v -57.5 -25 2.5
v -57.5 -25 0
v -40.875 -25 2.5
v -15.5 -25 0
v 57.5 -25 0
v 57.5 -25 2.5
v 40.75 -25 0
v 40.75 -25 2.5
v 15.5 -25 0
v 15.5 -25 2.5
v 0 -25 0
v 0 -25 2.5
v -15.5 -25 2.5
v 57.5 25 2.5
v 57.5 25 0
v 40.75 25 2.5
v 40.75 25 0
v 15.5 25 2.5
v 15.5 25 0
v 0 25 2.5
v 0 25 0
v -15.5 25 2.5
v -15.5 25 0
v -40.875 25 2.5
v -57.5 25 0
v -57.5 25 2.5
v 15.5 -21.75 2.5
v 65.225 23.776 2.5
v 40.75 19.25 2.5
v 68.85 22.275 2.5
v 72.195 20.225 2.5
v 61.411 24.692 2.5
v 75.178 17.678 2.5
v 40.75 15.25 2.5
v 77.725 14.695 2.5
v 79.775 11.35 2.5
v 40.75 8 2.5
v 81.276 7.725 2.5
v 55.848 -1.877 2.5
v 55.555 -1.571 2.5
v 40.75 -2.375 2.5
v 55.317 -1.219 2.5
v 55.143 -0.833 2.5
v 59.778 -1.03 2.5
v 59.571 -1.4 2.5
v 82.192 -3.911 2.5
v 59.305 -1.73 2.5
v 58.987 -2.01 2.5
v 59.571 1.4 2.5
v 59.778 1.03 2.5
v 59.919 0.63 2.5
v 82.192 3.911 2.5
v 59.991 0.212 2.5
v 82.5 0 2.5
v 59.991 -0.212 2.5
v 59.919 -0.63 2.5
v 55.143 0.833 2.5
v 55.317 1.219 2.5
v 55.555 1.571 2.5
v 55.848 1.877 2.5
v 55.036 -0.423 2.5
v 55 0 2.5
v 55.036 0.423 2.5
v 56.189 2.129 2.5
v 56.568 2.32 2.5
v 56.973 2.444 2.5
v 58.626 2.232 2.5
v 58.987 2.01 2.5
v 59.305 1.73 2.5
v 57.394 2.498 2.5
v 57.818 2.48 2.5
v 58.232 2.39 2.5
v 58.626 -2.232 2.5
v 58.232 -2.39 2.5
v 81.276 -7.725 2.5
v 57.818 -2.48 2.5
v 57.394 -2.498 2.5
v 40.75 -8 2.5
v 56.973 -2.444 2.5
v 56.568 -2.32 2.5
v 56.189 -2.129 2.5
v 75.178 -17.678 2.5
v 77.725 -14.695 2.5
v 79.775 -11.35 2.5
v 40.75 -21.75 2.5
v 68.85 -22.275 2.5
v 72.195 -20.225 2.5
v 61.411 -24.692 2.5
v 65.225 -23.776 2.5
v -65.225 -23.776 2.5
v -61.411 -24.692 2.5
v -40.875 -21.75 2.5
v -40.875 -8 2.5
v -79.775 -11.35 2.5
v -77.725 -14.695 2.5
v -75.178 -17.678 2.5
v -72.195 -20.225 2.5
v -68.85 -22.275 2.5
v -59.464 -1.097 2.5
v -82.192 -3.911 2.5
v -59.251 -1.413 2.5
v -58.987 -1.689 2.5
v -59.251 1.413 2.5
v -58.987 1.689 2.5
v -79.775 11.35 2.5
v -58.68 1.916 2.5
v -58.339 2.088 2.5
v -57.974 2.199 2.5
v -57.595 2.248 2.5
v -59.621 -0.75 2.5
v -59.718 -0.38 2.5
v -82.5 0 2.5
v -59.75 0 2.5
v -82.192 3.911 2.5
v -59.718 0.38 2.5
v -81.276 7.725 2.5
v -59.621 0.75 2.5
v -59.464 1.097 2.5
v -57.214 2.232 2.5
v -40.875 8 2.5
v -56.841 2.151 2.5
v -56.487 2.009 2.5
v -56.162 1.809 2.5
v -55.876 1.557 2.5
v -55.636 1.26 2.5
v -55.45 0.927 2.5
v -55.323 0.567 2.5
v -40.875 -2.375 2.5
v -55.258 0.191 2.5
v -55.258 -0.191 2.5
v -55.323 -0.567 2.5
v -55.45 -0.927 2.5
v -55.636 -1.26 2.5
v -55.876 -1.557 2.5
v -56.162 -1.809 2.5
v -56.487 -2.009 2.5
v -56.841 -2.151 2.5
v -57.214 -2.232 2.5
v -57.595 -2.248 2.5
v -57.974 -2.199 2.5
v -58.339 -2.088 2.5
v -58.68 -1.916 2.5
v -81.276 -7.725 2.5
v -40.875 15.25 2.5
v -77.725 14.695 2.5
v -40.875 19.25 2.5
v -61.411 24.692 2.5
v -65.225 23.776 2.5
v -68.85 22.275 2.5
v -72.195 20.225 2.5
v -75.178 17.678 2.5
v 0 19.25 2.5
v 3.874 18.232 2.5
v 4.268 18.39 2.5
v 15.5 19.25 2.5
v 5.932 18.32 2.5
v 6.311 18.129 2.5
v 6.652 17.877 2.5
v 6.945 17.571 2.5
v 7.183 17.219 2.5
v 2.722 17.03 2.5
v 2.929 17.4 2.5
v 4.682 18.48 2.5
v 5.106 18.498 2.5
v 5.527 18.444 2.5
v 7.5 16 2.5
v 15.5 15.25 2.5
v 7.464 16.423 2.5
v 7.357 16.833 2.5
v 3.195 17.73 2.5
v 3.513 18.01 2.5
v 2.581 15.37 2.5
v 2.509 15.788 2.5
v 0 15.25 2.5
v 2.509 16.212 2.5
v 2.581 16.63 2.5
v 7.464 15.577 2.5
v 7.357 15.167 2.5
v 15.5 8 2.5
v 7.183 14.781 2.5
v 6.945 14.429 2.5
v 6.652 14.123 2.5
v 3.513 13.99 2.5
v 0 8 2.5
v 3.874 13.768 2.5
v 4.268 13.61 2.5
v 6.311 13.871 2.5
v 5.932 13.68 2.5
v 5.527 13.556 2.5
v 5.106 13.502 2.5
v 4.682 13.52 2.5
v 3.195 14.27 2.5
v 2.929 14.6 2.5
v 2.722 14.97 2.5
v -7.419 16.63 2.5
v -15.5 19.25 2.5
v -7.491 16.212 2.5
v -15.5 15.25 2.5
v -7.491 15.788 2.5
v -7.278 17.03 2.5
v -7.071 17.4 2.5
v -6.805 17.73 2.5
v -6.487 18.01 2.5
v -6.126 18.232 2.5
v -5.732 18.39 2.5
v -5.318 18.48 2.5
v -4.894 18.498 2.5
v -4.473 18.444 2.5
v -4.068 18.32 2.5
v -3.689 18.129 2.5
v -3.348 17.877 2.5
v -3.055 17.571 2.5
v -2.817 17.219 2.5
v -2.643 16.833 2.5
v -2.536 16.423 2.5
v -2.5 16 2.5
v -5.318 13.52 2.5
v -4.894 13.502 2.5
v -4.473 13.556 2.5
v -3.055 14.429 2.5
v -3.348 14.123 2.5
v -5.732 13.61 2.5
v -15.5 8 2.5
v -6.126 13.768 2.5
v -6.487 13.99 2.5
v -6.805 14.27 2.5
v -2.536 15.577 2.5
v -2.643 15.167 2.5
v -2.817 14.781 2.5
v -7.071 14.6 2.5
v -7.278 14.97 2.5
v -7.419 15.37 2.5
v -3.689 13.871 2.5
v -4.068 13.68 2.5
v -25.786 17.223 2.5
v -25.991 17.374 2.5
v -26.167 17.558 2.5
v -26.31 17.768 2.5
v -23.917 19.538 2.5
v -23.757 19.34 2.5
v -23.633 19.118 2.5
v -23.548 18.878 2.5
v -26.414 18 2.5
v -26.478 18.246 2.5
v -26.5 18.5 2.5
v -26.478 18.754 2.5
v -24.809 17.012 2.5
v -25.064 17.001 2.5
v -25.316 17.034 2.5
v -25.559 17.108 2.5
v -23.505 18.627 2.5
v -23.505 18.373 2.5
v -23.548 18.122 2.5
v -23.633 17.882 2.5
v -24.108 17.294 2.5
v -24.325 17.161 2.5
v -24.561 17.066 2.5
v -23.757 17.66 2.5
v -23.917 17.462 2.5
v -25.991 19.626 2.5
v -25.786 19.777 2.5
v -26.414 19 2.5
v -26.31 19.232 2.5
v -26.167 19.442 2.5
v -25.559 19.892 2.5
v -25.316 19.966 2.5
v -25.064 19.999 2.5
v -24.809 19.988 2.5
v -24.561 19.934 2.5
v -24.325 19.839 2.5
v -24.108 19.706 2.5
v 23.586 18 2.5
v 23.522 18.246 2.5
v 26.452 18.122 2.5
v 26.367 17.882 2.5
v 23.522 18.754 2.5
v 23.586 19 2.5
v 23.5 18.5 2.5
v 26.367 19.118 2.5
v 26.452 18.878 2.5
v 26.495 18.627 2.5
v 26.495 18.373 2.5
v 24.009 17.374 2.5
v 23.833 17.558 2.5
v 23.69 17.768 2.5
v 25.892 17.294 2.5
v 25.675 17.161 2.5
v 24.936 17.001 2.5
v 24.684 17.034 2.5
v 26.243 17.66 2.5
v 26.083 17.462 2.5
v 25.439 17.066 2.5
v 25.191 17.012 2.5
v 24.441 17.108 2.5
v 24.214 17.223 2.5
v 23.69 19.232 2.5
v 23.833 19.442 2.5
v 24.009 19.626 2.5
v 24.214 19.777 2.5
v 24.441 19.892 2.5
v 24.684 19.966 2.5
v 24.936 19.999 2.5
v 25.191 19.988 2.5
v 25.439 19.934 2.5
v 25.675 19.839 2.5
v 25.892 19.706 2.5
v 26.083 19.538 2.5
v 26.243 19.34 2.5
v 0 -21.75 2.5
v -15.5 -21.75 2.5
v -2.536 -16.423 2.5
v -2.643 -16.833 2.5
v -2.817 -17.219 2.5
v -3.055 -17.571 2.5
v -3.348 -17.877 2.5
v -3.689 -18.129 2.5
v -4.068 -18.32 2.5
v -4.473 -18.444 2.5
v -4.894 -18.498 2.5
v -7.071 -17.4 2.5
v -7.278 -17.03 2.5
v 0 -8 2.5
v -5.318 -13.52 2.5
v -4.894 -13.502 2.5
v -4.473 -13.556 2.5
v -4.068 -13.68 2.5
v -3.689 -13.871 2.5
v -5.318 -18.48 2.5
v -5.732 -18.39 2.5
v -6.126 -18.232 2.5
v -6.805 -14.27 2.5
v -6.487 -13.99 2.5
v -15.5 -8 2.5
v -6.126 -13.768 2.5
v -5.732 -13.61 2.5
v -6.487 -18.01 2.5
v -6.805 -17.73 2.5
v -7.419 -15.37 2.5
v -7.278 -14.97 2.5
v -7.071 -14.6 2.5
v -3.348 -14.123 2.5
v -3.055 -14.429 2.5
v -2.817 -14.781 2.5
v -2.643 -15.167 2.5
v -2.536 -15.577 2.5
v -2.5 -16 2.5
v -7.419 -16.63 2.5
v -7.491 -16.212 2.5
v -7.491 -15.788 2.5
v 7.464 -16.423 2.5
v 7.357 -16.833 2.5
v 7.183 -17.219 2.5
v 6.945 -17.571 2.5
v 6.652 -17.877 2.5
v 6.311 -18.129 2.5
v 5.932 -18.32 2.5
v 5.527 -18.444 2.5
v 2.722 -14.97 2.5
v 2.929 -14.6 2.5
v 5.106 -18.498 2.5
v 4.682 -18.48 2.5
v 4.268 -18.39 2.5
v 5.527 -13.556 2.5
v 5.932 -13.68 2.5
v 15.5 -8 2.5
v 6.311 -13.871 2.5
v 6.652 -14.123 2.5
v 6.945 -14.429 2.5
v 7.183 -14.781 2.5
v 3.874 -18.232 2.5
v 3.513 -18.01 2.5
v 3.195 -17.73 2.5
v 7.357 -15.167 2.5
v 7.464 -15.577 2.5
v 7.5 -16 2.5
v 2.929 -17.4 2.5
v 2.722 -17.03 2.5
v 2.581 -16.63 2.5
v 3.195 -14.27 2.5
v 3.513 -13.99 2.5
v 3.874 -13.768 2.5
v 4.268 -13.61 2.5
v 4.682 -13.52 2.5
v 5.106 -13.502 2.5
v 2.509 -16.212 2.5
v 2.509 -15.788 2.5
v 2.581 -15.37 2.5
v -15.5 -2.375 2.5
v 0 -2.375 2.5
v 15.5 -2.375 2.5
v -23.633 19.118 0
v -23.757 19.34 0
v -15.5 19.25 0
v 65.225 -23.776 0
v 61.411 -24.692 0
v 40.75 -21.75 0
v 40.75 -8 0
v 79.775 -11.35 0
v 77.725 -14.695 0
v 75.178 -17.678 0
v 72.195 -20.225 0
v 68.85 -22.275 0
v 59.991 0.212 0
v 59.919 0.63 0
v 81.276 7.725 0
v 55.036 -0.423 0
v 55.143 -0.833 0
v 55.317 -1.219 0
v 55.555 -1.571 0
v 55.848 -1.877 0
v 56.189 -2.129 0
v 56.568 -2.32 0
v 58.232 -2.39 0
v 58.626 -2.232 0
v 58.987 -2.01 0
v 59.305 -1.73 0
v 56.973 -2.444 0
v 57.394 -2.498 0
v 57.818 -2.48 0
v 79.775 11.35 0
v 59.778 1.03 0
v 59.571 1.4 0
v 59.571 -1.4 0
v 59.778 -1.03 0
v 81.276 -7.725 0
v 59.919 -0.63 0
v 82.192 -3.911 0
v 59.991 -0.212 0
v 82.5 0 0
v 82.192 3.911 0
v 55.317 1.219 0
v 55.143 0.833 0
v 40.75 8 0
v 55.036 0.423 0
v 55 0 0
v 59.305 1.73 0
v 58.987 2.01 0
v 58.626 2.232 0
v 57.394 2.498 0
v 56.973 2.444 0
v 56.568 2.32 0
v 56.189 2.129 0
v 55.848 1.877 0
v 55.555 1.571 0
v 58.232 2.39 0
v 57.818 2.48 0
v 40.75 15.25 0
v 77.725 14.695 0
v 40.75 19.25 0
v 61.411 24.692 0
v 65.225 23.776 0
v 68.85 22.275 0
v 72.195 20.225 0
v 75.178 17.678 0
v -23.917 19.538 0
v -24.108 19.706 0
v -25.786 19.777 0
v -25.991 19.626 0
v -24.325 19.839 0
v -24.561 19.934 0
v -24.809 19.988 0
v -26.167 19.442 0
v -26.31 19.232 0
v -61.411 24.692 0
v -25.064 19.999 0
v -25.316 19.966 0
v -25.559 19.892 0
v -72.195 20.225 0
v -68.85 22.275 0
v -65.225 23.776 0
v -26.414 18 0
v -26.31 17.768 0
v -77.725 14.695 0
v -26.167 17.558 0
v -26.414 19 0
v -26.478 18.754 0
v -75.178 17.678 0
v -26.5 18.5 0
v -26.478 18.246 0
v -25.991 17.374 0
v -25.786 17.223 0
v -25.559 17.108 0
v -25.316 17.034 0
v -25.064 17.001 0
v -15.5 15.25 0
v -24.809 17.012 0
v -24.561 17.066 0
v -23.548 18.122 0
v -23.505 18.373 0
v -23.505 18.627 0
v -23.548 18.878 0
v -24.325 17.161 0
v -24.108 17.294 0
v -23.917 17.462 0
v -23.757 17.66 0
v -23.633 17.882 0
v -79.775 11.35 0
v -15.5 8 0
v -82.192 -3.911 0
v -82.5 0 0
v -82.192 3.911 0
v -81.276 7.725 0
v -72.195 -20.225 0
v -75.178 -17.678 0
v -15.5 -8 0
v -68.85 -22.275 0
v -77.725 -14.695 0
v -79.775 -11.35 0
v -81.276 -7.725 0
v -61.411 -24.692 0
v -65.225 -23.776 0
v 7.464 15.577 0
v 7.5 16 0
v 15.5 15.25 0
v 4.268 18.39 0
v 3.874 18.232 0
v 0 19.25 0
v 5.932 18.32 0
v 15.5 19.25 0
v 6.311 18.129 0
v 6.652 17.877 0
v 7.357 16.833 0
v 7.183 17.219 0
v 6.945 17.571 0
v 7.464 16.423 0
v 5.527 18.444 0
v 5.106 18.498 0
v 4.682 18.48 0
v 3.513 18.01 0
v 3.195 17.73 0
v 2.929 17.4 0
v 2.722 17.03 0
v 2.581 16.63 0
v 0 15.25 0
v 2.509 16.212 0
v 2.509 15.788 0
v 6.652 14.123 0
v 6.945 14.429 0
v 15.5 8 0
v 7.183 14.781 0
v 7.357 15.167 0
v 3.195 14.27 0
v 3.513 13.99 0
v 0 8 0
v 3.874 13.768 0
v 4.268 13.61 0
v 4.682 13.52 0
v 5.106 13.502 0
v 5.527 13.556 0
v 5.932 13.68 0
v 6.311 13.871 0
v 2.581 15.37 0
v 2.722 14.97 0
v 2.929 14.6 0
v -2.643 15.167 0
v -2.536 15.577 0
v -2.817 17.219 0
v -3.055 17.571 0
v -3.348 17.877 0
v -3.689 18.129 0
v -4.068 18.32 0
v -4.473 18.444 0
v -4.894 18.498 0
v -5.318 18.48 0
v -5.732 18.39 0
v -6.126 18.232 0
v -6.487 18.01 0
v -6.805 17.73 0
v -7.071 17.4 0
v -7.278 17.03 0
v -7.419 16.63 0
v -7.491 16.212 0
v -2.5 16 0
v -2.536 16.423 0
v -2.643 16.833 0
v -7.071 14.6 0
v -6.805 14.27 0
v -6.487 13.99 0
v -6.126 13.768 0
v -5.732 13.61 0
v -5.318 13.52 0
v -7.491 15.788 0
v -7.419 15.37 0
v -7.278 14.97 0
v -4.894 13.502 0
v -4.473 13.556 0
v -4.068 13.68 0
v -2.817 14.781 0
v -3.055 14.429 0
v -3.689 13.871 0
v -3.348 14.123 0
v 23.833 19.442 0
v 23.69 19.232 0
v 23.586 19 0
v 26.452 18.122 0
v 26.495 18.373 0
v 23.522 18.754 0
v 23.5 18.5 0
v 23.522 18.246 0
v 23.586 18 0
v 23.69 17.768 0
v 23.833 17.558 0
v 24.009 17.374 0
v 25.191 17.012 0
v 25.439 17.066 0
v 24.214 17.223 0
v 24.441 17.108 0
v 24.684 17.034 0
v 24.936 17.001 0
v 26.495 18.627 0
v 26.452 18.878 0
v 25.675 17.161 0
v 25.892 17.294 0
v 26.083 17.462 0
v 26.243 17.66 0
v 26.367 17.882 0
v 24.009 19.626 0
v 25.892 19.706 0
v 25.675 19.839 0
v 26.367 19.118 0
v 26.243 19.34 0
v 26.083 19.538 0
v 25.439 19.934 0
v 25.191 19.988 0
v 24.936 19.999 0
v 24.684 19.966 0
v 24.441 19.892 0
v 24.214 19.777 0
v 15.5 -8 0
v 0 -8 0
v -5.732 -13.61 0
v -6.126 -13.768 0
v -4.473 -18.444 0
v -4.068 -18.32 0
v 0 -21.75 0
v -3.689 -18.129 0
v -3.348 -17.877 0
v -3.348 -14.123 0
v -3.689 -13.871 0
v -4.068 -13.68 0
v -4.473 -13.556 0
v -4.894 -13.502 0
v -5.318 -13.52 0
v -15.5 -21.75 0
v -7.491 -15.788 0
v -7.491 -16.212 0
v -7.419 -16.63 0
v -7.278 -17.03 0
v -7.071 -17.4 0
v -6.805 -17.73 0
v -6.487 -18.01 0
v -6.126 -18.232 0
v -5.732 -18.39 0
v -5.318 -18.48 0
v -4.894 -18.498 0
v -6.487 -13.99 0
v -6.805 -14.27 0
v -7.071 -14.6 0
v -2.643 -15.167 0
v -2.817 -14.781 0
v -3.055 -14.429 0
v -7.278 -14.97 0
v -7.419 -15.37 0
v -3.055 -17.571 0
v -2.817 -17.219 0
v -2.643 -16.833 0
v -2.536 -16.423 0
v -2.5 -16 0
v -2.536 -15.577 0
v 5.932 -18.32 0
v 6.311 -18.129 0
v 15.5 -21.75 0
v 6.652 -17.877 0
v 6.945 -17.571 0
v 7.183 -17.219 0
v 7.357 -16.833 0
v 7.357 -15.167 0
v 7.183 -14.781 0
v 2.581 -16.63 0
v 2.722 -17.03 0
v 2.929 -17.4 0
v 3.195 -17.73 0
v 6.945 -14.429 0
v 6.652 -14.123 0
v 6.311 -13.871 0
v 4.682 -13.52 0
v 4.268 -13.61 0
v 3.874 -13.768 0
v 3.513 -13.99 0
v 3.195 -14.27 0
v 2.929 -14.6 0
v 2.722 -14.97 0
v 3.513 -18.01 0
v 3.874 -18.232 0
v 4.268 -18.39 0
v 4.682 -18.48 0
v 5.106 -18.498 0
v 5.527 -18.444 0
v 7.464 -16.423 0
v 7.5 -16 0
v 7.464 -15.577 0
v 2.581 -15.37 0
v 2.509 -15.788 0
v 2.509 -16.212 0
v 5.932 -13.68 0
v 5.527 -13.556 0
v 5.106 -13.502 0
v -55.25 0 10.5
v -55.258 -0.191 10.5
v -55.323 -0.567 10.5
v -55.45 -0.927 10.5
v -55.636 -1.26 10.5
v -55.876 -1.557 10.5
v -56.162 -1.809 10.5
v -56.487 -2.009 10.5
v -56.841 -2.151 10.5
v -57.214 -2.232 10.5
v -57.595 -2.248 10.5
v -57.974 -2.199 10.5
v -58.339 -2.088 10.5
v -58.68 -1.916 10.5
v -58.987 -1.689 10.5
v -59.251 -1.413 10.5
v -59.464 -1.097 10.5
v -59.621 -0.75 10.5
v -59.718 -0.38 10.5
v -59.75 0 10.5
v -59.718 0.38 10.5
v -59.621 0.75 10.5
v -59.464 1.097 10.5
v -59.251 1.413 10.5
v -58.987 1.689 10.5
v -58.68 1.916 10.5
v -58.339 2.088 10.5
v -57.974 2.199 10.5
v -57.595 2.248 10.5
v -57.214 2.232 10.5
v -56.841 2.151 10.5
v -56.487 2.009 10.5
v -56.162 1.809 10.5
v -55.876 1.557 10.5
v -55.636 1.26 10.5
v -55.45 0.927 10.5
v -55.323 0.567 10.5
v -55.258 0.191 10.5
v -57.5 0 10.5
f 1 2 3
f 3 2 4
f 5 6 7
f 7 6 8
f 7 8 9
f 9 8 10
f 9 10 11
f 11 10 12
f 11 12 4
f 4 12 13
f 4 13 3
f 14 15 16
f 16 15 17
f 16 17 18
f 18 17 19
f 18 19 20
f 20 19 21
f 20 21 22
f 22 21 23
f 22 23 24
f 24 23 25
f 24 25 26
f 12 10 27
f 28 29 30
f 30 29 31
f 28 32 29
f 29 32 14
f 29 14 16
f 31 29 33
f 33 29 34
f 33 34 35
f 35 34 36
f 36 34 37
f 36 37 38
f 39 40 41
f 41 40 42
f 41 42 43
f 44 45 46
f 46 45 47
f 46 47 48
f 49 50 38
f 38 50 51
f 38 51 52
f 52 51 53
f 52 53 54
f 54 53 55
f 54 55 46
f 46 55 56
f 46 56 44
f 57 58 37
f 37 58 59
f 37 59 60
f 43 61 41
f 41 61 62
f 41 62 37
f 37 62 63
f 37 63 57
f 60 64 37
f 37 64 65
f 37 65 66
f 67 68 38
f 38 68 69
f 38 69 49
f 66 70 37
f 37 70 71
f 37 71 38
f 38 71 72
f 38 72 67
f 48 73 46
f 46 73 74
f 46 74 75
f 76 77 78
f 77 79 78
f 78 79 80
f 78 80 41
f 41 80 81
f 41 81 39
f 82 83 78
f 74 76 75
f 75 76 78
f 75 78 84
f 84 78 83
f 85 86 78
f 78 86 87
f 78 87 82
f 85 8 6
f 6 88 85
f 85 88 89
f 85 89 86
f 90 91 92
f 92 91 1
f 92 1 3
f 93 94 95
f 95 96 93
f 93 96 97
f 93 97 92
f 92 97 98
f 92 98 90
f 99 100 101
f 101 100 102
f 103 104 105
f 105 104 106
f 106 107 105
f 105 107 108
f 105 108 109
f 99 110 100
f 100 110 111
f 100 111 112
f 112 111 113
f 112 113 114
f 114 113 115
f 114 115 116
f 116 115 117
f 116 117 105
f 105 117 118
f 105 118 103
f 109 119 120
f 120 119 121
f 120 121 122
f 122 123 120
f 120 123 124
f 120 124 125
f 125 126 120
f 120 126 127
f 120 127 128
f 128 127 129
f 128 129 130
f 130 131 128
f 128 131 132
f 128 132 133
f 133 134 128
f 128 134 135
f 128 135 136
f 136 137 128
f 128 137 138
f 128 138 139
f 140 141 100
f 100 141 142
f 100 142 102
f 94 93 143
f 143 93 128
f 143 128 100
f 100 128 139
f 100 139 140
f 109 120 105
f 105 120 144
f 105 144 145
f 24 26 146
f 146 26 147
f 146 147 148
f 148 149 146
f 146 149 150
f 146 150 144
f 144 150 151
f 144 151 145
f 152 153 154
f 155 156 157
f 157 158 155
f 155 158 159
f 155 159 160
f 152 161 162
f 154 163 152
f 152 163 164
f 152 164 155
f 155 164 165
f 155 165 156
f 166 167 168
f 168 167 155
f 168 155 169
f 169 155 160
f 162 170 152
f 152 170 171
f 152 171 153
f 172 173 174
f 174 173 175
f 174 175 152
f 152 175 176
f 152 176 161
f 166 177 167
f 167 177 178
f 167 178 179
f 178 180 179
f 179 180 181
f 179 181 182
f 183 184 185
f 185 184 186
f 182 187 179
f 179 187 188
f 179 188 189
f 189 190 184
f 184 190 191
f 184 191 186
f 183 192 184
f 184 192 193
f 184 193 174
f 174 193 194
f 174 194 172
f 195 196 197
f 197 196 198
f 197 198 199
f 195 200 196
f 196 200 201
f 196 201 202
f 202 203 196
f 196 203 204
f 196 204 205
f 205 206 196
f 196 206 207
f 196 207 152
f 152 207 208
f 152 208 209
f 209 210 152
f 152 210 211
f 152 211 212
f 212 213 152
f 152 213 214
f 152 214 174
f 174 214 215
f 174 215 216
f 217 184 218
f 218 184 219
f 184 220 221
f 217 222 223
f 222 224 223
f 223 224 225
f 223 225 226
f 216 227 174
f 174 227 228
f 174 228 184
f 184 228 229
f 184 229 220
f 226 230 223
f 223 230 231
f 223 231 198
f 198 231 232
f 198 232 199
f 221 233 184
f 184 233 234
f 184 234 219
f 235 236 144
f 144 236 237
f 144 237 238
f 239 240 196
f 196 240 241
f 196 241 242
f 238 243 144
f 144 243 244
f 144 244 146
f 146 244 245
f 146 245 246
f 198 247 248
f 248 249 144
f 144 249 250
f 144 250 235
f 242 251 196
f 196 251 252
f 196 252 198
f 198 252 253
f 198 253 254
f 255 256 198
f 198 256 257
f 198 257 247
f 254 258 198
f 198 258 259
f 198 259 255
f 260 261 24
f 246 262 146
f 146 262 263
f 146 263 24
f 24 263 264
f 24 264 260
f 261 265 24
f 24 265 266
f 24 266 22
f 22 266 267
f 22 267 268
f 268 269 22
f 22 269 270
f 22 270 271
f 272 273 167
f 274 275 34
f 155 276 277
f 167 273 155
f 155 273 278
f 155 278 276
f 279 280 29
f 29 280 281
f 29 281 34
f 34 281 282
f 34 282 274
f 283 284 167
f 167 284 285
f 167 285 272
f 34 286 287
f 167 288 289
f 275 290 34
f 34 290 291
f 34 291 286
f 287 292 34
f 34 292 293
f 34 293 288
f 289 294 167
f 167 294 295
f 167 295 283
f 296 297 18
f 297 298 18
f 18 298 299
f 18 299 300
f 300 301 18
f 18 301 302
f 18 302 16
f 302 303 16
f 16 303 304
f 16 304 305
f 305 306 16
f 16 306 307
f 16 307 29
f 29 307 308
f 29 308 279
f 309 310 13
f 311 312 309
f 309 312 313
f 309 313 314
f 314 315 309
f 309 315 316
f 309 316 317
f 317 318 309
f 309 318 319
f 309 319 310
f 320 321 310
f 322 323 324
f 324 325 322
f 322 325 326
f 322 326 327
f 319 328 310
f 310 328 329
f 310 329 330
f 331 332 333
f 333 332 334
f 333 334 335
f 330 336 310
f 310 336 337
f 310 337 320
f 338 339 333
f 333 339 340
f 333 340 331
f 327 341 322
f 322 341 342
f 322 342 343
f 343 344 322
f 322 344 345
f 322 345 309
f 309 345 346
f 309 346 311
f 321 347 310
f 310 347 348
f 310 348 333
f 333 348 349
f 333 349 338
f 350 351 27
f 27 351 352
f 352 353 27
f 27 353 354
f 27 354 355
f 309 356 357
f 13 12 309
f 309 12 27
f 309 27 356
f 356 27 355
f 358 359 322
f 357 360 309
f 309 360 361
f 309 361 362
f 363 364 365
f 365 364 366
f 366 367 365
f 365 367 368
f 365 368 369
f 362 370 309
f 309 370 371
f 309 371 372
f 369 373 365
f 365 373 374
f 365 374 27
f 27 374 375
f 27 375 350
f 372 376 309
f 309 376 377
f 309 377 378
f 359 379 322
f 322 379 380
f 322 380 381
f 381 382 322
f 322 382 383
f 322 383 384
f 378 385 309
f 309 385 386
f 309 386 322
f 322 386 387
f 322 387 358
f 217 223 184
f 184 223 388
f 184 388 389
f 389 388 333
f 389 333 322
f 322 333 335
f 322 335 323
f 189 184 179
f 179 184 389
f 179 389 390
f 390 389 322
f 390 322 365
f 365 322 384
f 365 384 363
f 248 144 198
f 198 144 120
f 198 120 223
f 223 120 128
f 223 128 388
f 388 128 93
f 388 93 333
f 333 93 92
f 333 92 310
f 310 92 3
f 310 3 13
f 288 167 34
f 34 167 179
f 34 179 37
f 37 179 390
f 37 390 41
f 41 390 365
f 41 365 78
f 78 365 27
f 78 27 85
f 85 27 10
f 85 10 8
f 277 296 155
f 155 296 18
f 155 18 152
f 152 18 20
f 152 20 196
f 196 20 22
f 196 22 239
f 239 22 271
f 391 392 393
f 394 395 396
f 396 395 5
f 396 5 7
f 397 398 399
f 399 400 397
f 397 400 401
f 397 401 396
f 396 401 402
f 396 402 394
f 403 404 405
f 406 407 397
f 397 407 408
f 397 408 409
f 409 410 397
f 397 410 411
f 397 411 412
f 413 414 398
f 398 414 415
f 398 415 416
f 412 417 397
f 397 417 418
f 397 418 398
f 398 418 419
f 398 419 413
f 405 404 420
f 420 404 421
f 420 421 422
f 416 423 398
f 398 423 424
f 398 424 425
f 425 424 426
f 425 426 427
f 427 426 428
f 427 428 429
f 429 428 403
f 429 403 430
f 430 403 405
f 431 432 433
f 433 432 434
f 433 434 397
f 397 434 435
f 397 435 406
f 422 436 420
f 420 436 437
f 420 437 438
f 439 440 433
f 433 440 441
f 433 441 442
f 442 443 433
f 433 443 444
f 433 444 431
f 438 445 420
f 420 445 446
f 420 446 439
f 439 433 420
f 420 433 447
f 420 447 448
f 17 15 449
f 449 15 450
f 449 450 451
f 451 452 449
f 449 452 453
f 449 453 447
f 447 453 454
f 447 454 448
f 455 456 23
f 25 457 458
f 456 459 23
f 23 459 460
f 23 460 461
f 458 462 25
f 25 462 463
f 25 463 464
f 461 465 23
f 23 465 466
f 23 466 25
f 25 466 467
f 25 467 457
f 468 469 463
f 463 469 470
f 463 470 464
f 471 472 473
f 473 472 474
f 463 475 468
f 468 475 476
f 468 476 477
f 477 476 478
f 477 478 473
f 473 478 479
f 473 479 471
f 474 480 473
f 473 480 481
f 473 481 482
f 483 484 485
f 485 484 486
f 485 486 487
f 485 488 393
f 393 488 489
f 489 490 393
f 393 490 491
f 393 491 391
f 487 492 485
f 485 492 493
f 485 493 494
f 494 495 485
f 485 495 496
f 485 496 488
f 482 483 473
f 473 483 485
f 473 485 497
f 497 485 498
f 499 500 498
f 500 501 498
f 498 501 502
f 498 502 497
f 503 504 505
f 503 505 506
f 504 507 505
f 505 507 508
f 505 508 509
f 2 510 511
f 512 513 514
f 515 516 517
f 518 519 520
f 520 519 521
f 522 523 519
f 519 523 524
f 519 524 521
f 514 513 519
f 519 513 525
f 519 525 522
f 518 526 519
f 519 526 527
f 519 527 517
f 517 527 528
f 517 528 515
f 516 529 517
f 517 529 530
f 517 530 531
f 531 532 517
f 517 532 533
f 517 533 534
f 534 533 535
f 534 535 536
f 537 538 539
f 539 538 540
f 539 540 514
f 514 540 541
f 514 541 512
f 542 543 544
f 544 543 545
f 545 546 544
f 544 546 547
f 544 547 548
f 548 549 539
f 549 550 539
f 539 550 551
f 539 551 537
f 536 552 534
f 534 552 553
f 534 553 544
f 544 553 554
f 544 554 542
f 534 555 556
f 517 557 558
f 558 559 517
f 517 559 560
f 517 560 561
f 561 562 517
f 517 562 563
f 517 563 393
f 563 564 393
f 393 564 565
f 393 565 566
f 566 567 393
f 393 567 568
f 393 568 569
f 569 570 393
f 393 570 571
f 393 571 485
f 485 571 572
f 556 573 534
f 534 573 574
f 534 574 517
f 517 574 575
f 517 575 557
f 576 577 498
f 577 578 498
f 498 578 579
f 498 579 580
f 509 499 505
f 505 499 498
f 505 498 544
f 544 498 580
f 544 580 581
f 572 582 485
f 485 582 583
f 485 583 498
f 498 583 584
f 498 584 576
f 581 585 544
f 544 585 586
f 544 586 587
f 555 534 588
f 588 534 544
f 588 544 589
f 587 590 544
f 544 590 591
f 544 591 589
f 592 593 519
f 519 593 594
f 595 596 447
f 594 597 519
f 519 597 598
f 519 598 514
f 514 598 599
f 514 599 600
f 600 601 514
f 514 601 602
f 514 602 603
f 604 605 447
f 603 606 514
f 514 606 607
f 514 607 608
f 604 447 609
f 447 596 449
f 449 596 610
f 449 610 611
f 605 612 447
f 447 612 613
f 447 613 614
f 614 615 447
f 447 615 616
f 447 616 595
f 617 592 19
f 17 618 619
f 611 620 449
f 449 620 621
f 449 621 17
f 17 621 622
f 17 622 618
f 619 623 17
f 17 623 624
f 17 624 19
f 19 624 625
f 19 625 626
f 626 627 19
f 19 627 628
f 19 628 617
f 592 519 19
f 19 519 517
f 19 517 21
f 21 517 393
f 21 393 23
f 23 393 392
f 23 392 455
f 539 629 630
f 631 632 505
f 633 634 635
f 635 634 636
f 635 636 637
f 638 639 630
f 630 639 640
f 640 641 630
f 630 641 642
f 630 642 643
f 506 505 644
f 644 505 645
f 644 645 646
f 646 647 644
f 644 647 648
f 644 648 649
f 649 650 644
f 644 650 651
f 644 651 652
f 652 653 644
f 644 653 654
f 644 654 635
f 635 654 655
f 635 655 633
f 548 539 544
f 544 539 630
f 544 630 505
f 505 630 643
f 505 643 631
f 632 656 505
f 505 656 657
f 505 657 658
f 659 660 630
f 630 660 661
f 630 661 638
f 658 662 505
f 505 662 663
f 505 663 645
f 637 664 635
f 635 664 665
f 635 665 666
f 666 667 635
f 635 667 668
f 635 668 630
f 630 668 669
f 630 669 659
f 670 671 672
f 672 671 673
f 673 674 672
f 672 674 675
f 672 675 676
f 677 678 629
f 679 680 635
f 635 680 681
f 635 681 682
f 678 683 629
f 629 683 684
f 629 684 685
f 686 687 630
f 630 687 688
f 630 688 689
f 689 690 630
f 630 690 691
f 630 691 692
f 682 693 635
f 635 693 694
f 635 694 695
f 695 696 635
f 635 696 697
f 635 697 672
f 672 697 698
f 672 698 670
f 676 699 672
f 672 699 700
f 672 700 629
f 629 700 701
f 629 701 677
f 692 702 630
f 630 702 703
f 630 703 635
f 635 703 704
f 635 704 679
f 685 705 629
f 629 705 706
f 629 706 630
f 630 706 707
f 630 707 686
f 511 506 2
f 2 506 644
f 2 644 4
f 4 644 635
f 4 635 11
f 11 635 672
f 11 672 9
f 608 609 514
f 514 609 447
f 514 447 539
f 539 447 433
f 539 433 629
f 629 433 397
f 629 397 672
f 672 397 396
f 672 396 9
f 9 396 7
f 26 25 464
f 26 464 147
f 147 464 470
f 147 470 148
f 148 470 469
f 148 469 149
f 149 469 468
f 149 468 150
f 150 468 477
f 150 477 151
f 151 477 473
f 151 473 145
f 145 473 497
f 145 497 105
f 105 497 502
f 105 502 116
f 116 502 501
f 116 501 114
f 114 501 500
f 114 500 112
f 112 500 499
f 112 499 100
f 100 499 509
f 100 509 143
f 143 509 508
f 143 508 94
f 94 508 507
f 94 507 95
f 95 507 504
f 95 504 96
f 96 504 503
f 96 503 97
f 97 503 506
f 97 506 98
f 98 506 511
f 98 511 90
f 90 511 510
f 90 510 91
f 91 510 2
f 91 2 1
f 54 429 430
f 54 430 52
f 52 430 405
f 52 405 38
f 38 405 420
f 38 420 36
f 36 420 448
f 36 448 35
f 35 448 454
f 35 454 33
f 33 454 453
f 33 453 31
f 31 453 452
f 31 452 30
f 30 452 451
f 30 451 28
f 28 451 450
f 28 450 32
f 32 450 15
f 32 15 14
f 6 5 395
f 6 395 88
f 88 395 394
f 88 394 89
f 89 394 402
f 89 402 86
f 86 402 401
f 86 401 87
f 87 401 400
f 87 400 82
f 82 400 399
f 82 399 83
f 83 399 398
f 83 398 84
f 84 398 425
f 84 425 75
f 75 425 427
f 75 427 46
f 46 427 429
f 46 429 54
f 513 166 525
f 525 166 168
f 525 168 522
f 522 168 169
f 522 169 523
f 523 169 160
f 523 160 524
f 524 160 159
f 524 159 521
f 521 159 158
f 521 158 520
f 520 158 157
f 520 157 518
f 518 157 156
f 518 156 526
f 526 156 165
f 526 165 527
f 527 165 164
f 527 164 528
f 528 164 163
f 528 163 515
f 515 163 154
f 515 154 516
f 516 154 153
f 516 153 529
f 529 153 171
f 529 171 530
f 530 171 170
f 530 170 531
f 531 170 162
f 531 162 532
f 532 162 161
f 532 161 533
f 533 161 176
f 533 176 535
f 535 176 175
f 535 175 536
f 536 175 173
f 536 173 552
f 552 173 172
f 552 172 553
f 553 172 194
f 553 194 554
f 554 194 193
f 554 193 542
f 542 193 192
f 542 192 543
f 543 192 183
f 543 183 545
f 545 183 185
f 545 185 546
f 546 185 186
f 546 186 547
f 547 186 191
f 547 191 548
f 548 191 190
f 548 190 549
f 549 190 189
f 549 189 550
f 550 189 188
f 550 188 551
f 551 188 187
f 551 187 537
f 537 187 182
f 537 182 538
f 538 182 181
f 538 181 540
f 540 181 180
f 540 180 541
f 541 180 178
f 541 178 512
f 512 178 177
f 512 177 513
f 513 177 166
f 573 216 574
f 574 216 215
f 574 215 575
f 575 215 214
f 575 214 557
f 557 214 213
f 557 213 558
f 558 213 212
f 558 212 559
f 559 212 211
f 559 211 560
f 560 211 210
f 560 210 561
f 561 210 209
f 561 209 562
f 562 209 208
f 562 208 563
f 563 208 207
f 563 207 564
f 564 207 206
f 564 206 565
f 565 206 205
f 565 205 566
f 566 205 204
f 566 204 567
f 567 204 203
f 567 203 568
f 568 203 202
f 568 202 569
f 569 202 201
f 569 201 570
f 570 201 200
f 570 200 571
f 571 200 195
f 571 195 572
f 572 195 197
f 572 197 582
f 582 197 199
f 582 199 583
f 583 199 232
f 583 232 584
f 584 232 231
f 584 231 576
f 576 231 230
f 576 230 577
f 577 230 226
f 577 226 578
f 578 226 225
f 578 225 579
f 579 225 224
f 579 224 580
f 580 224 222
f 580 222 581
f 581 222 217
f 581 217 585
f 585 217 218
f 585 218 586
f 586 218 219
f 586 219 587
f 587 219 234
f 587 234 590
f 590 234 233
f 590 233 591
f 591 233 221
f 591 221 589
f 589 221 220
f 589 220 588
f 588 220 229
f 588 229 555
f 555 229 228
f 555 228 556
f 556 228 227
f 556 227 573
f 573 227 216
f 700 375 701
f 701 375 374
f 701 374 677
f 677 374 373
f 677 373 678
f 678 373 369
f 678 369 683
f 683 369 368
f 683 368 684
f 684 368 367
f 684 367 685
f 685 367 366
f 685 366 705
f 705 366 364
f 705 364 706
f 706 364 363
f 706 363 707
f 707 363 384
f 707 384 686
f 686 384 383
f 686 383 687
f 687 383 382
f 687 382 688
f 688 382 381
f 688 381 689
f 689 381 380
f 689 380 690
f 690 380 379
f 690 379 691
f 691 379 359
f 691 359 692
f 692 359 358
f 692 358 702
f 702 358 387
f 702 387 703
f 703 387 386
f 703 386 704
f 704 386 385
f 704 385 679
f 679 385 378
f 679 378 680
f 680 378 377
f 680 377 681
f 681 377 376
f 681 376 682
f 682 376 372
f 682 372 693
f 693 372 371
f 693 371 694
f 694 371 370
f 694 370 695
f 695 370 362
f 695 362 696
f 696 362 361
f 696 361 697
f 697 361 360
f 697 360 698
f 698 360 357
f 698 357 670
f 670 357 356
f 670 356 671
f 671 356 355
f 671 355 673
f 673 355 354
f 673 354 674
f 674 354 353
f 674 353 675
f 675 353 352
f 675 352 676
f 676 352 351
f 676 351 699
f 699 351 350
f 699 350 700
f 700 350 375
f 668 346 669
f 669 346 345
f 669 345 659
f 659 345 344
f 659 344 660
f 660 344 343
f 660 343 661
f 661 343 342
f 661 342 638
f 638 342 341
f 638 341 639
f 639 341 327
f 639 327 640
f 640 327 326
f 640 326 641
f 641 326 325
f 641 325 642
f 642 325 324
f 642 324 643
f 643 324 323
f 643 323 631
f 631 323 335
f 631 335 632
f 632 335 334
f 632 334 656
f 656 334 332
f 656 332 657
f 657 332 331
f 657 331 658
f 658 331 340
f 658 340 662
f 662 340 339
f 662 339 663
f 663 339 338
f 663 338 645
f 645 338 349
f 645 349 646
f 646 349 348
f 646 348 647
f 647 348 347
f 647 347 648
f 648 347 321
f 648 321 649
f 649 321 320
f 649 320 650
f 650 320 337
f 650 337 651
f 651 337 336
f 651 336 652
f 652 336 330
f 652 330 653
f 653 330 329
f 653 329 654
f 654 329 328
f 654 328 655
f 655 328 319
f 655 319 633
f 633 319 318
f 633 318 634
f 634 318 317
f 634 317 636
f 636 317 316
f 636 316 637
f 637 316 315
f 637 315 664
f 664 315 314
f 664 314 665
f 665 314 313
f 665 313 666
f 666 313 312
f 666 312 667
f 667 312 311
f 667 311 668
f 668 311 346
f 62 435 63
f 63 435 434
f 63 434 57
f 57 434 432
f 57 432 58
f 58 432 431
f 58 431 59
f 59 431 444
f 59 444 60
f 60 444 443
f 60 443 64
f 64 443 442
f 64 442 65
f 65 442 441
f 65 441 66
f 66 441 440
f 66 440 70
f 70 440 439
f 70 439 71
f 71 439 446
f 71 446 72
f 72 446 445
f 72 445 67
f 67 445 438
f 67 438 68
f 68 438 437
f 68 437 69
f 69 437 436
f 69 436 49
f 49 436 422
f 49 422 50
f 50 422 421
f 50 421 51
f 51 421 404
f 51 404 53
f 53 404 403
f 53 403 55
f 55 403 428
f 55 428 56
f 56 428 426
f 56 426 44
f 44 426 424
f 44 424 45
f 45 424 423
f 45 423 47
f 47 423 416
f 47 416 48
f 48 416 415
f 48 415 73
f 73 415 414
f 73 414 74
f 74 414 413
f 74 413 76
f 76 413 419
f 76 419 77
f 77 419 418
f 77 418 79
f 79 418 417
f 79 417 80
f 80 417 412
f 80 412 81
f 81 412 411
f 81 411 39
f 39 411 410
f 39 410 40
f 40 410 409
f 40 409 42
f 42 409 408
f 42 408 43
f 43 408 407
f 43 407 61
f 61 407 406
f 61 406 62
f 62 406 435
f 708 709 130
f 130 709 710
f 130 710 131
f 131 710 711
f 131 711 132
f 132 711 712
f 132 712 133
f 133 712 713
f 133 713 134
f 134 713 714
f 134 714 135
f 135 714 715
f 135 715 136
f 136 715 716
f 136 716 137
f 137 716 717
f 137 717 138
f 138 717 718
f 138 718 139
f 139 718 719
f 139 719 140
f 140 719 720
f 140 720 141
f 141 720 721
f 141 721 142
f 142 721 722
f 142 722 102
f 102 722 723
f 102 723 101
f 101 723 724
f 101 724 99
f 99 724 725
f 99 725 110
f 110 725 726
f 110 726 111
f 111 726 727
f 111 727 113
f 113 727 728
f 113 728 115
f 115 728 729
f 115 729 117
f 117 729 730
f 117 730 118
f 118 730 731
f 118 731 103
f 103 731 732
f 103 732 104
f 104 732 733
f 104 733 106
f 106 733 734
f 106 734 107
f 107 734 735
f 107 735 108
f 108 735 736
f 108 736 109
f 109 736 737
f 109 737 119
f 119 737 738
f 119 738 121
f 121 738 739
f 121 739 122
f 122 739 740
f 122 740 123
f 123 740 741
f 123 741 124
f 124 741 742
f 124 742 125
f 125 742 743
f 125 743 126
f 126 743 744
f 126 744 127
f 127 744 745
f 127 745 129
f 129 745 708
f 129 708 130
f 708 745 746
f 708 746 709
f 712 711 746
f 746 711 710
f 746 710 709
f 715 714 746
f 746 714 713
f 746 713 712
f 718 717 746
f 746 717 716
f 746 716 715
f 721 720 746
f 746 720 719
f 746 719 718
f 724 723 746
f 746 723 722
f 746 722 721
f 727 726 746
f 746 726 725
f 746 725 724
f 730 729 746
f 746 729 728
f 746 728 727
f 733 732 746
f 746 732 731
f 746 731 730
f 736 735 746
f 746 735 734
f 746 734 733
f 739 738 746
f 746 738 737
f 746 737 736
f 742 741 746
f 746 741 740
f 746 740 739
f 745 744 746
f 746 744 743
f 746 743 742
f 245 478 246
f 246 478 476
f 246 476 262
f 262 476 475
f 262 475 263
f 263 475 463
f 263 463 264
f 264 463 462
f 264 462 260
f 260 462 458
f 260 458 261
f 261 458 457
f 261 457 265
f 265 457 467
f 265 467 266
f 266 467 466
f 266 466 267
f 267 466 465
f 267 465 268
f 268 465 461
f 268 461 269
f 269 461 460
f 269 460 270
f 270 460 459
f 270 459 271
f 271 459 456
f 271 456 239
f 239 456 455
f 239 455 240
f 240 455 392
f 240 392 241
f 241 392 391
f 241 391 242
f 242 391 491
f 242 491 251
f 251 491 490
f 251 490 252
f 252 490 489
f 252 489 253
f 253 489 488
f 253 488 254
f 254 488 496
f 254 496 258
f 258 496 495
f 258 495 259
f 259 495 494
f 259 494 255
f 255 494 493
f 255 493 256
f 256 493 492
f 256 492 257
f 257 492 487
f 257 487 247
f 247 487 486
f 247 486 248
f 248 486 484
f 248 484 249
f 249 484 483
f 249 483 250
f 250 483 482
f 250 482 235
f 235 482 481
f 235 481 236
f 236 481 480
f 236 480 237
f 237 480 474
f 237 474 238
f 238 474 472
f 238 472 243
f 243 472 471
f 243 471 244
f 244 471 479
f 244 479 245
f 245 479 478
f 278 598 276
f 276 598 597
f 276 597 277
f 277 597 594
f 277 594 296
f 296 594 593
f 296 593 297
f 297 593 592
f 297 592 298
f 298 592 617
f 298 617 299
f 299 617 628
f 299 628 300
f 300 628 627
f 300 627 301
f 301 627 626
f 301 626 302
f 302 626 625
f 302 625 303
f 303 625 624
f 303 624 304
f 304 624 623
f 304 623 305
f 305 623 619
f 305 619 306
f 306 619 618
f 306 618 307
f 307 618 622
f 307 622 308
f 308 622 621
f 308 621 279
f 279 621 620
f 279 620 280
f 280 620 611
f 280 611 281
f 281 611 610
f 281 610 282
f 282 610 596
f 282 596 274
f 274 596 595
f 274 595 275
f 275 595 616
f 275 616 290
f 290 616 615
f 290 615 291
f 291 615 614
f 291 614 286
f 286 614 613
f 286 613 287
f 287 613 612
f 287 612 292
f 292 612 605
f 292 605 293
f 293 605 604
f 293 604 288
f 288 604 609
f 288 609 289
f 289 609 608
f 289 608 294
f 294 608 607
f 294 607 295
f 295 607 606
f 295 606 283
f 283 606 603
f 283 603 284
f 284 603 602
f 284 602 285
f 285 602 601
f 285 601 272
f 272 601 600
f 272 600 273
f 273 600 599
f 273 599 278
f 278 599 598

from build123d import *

# Parameters (mm, degrees)
SKETCH1_W           = 165
SKETCH1_H           = 50
BOSS_EXTRUDE1_DEPTH = 2.5
FILLET1_R           = 25
SKETCH2_R           = 2.5
CUT_EXTRUDE1_DEPTH  = 2.5
SKETCH3_R           = 2.5
CUT_EXTRUDE2_DEPTH  = 2.5
SKETCH4_R           = 2.25
BOSS_EXTRUDE2_DEPTH = 8
SKETCH6_R           = 1.5
CUT_EXTRUDE4_DEPTH  = 87.841810207


with BuildPart() as part:
    # Sketch1 → Boss-Extrude1 (new body)
    with BuildSketch(Plane.XY):
        Rectangle(SKETCH1_W, SKETCH1_H)
    extrude(amount=BOSS_EXTRUDE1_DEPTH)

    # Fillet1
    fillet1_edges = [part.edges().sort_by_distance(p)[0] for p in [
        (-82.5, -25, 1.25),
        (-82.5, 25, 1.25),
        (82.5, -25, 1.25),
        (82.5, 25, 1.25),
    ]]
    fillet(fillet1_edges, radius=FILLET1_R - 0.0001)  # a hair under: the kernel refuses the full size

    # Sketch2 → Cut-Extrude1 (cut)
    with BuildSketch(Plane.XY.offset(2.5)):
        with Locations((-5, 16)):
            Circle(SKETCH2_R)
        with Locations((5, 16)):
            Circle(SKETCH2_R)
    cut_extrude1 = extrude(amount=-CUT_EXTRUDE1_DEPTH, mode=Mode.SUBTRACT)

    # Mirror1: Cut-Extrude1 across plane
    add(cut_extrude1.mirror(Plane.ZX), mode=Mode.SUBTRACT)

    # Sketch3 → Cut-Extrude2 (cut)
    with BuildSketch(Plane(origin=(0, 0, 0), x_dir=(-1, 0, 0), z_dir=(0, 0, -1))):
        with Locations((-57.5, 0)):
            Circle(SKETCH3_R)
    extrude(amount=-CUT_EXTRUDE2_DEPTH, mode=Mode.SUBTRACT)

    # Sketch4 → Boss-Extrude2 (add)
    with BuildSketch(Plane.XY.offset(2.5)):
        with Locations(Location((-57.5, 0, 0), (0, 0, 180))):
            Circle(SKETCH4_R)
    extrude(amount=BOSS_EXTRUDE2_DEPTH)

    # Sketch6 → Cut-Extrude4 (cut, through all)
    with BuildSketch(Plane(origin=(0, 0, 0), x_dir=(-1, 0, 0), z_dir=(0, 0, -1))):
        with Locations((-25, 18.5)):
            Circle(SKETCH6_R)
        with Locations((25, 18.5)):
            Circle(SKETCH6_R)
    extrude(amount=-CUT_EXTRUDE4_DEPTH, mode=Mode.SUBTRACT)


solid = part.part
